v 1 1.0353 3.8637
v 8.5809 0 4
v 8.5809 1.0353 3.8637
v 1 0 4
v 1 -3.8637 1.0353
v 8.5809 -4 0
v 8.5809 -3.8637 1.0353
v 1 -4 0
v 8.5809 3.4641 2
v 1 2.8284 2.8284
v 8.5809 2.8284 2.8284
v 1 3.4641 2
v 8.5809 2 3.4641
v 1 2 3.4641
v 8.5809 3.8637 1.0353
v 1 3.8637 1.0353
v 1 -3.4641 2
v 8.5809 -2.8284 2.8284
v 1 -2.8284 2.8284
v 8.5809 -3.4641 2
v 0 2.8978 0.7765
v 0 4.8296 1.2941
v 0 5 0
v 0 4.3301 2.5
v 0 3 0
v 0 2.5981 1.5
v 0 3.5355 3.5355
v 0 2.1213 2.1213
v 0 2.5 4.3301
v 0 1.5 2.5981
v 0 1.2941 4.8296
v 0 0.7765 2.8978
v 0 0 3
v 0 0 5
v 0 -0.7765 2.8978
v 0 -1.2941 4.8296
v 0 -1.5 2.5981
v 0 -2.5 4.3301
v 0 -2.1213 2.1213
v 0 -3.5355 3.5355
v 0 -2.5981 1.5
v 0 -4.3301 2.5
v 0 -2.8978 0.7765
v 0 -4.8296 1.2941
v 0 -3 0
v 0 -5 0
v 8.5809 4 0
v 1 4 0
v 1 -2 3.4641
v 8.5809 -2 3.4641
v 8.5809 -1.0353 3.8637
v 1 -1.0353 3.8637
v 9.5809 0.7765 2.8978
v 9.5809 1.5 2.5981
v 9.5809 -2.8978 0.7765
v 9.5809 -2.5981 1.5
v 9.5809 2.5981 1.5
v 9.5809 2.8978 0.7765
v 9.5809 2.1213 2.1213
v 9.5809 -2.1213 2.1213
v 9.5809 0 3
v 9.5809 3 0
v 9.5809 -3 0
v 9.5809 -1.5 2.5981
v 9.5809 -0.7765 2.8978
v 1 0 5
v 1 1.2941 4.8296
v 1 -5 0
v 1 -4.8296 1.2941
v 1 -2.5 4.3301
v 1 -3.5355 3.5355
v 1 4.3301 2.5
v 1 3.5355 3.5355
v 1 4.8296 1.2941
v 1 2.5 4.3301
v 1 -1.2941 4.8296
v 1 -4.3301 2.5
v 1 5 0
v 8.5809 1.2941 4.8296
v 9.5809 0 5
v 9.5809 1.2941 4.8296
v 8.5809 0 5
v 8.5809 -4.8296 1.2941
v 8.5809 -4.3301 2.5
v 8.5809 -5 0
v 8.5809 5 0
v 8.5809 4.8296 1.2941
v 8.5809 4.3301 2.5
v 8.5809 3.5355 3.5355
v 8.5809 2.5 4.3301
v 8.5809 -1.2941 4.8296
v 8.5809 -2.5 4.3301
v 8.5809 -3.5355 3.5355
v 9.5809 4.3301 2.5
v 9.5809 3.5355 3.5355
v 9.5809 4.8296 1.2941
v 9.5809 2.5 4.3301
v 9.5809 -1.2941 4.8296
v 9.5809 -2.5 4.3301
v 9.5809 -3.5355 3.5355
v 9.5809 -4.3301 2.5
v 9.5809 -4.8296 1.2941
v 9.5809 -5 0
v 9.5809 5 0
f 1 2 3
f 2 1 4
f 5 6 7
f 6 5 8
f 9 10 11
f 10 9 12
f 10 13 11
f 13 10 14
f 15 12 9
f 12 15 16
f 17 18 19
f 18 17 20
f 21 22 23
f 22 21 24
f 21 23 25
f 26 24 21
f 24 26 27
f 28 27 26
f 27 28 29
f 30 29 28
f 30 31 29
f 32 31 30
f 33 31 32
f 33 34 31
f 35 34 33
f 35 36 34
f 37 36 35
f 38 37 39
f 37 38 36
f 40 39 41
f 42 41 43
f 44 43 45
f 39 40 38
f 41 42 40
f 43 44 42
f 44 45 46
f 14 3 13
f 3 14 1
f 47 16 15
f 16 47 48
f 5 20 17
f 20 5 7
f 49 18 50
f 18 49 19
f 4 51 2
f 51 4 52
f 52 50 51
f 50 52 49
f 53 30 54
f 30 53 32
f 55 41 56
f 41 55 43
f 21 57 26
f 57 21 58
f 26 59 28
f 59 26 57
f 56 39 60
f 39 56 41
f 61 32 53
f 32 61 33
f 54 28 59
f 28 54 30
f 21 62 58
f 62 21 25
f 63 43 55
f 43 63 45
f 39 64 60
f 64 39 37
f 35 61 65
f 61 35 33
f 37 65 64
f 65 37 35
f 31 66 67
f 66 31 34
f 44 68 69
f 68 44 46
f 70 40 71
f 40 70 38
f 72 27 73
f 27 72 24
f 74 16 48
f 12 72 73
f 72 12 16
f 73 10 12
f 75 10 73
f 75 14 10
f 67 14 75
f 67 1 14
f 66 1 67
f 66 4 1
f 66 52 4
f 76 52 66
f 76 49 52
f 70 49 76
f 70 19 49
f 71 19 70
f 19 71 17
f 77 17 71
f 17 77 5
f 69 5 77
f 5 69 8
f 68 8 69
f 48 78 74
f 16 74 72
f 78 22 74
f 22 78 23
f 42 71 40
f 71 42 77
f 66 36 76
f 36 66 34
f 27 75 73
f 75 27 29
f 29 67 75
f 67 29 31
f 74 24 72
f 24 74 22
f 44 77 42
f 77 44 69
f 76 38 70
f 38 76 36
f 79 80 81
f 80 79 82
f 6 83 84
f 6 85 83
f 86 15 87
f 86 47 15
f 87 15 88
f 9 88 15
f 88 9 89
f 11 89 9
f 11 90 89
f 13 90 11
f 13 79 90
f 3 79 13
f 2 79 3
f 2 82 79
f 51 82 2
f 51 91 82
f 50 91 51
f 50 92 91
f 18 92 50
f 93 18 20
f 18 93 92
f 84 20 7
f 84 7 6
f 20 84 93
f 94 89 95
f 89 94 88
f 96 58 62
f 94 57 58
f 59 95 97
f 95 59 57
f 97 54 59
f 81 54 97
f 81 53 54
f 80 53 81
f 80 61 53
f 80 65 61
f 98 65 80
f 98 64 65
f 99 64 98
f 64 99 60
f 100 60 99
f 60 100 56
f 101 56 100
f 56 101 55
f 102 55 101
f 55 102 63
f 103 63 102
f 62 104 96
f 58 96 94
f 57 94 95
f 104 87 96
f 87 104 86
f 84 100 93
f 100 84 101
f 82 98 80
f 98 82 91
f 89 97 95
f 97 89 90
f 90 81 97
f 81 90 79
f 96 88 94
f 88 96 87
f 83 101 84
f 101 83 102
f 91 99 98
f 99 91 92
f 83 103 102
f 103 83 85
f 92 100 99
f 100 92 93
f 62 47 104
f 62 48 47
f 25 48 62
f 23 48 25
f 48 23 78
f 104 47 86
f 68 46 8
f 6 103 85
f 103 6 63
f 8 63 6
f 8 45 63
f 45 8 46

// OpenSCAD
// file: ../build_environments.scad
// build_environments.scad: modules to build level sections
//

module pool(diameter=10.0, wall_height=2.0, step_width=3.0, connections=[])
{
    difference() {
        union() {
        difference() {
            cylinder(h=0.5,r1=diameter+step_width,r2=diameter+step_width,$fn=48);
            translate([0,0,-0.1])
                cylinder(h=0.7,r1=diameter,r2=diameter,$fn=48);
        }
        difference() {
            cylinder(h=wall_height,r1=diameter+step_width+1.0,r2=diameter+step_width+1.0,$fn=48);
            translate([0,0,-0.1])
                cylinder(h=wall_height+0.2,r1=diameter+step_width,r2=diameter+step_width,$fn=48);
        }
        }
    
        for (c = connections)
        {
            rotate([0,90,0]) {
                angle = atan2(c[1],c[0]);
                rotate([-angle,0,0]) {
                    cylinder(h=diameter+5.0,r1=c[2],r2=c[2],$fn=48);
                }
            }
        }
    }
}

module straight(length=10.0, width=2.0, dy1=0.0, dy2=0.0, dz=0.0)
{
    dims = [0, 0, 0, 0, 0, (dz/length)];
    matrix = [
        [ 1, dims[0], dims[1], 0 ],
        [ dims[2], 1, dims[4], 0 ],
        [ dims[5], dims[3], 1, 0 ],
        [ 0, 0, 0, 1 ]
    ];
    multmatrix(matrix)
    difference() {
        translate([dy1,0,0])
        union() {
            rotate([0,90,0]) {
                difference() {
                    cylinder(h=(length-dy1-dy2),r1=width+1.0,r2=width+1.0,$fn=24);
                    translate([0,0,-0.1])
                        cylinder(h=(length-dy1-dy2+0.2),r1=width,r2=width,$fn=24);
                }
                difference() {
                    cylinder(h=1.0,r1=width+2.0,r2=width+2.0,$fn=24);
                    translate([0,0,-0.1])
                        cylinder(h=1.2,r1=width,r2=width,$fn=24);
                }
                translate([0,0,(length-dy1-dy2)-1.0]) {
                    difference() {
                        cylinder(h=1.0,r1=width+2.0,r2=width+2.0,$fn=24);
                        translate([0,0,-0.1])
                            cylinder(h=1.2,r1=width,r2=width,$fn=24);
                    }
                }
            }
        }
        translate([0,0,-(2*width+4.0)/2])
            cube([3*length,3*length,2*width+4.0],center=true);
    }
}

module curve(p0=[0,0], center=[0,0], dir=1, angle=0.0, width=2.0)
{
    radius = sqrt((p0[0]-center[0])*(p0[0]-center[0]) + (p0[1]-center[1])*(p0[1]-center[1]));
    if (dir == 0) {
        difference() {
            rotate([0,0,-90])
            difference() {
                rotate_extrude(angle = angle, convexity = 10, $fn=32)
                    translate([radius, 0, 0])
                        circle(r = width+1.0,$fn=24);
                rotate([0,0,-1.0])
                    rotate_extrude(angle = angle+2.0, convexity = 10, $fn=32)
                        translate([radius, 0, 0])
                            circle(r = width,$fn=24);
            }
            translate([0,0,-(2*width+4.0)/2])
                cube([5*radius,5*radius,2*width+4.0],center=true);
        }
    }
    else {
        difference() {
            rotate([0,0,90])
            difference() {
                rotate_extrude(angle = -angle, convexity = 10, $fn=32)
                    translate([radius, 0, 0])
                        circle(r = width+1.0,$fn=24);
                rotate([0,0,1.0])
                    rotate_extrude(angle = -angle-2.0, convexity = 10, $fn=32)
                        translate([radius, 0, 0])
                            circle(r = width,$fn=24);
            }
            translate([0,0,-(2*width+4.0)/2])
                cube([5*radius,5*radius,2*width+4.0],center=true);
        }
    }

}

// test pool
//pool(diameter=12.0000, wall_height=3.0000, step_width=3.0000, connections=[[0.0000,-26.0000,2.0000], [23.6074,0.0000,2.0000]]);

// test straight, slope
//straight(length=26.0000, width=2.0000, dy1=11.8322, dy2=6.7082, dz=0.0000);
//straight(length=29.1549, width=12.0000, dy1=0.0000, dy2=0.0000, dz=-15.0000);

// test curve
//curve(p0=[23.6074, 0.0000], center=[23.6074, 5.0000], dir=0, angle=60.1011, width=2.0000);
//curve(p0=[33.6426, 12.4219], center=[37.9771, 9.9295], dir=1, angle=120.4627, width=2.0000);
// main file
use <../build_environments.scad>;
straight(length=15.9055, width=3.0000, dy1=0.0000, dy2=6.3246, dz=0.0000);
